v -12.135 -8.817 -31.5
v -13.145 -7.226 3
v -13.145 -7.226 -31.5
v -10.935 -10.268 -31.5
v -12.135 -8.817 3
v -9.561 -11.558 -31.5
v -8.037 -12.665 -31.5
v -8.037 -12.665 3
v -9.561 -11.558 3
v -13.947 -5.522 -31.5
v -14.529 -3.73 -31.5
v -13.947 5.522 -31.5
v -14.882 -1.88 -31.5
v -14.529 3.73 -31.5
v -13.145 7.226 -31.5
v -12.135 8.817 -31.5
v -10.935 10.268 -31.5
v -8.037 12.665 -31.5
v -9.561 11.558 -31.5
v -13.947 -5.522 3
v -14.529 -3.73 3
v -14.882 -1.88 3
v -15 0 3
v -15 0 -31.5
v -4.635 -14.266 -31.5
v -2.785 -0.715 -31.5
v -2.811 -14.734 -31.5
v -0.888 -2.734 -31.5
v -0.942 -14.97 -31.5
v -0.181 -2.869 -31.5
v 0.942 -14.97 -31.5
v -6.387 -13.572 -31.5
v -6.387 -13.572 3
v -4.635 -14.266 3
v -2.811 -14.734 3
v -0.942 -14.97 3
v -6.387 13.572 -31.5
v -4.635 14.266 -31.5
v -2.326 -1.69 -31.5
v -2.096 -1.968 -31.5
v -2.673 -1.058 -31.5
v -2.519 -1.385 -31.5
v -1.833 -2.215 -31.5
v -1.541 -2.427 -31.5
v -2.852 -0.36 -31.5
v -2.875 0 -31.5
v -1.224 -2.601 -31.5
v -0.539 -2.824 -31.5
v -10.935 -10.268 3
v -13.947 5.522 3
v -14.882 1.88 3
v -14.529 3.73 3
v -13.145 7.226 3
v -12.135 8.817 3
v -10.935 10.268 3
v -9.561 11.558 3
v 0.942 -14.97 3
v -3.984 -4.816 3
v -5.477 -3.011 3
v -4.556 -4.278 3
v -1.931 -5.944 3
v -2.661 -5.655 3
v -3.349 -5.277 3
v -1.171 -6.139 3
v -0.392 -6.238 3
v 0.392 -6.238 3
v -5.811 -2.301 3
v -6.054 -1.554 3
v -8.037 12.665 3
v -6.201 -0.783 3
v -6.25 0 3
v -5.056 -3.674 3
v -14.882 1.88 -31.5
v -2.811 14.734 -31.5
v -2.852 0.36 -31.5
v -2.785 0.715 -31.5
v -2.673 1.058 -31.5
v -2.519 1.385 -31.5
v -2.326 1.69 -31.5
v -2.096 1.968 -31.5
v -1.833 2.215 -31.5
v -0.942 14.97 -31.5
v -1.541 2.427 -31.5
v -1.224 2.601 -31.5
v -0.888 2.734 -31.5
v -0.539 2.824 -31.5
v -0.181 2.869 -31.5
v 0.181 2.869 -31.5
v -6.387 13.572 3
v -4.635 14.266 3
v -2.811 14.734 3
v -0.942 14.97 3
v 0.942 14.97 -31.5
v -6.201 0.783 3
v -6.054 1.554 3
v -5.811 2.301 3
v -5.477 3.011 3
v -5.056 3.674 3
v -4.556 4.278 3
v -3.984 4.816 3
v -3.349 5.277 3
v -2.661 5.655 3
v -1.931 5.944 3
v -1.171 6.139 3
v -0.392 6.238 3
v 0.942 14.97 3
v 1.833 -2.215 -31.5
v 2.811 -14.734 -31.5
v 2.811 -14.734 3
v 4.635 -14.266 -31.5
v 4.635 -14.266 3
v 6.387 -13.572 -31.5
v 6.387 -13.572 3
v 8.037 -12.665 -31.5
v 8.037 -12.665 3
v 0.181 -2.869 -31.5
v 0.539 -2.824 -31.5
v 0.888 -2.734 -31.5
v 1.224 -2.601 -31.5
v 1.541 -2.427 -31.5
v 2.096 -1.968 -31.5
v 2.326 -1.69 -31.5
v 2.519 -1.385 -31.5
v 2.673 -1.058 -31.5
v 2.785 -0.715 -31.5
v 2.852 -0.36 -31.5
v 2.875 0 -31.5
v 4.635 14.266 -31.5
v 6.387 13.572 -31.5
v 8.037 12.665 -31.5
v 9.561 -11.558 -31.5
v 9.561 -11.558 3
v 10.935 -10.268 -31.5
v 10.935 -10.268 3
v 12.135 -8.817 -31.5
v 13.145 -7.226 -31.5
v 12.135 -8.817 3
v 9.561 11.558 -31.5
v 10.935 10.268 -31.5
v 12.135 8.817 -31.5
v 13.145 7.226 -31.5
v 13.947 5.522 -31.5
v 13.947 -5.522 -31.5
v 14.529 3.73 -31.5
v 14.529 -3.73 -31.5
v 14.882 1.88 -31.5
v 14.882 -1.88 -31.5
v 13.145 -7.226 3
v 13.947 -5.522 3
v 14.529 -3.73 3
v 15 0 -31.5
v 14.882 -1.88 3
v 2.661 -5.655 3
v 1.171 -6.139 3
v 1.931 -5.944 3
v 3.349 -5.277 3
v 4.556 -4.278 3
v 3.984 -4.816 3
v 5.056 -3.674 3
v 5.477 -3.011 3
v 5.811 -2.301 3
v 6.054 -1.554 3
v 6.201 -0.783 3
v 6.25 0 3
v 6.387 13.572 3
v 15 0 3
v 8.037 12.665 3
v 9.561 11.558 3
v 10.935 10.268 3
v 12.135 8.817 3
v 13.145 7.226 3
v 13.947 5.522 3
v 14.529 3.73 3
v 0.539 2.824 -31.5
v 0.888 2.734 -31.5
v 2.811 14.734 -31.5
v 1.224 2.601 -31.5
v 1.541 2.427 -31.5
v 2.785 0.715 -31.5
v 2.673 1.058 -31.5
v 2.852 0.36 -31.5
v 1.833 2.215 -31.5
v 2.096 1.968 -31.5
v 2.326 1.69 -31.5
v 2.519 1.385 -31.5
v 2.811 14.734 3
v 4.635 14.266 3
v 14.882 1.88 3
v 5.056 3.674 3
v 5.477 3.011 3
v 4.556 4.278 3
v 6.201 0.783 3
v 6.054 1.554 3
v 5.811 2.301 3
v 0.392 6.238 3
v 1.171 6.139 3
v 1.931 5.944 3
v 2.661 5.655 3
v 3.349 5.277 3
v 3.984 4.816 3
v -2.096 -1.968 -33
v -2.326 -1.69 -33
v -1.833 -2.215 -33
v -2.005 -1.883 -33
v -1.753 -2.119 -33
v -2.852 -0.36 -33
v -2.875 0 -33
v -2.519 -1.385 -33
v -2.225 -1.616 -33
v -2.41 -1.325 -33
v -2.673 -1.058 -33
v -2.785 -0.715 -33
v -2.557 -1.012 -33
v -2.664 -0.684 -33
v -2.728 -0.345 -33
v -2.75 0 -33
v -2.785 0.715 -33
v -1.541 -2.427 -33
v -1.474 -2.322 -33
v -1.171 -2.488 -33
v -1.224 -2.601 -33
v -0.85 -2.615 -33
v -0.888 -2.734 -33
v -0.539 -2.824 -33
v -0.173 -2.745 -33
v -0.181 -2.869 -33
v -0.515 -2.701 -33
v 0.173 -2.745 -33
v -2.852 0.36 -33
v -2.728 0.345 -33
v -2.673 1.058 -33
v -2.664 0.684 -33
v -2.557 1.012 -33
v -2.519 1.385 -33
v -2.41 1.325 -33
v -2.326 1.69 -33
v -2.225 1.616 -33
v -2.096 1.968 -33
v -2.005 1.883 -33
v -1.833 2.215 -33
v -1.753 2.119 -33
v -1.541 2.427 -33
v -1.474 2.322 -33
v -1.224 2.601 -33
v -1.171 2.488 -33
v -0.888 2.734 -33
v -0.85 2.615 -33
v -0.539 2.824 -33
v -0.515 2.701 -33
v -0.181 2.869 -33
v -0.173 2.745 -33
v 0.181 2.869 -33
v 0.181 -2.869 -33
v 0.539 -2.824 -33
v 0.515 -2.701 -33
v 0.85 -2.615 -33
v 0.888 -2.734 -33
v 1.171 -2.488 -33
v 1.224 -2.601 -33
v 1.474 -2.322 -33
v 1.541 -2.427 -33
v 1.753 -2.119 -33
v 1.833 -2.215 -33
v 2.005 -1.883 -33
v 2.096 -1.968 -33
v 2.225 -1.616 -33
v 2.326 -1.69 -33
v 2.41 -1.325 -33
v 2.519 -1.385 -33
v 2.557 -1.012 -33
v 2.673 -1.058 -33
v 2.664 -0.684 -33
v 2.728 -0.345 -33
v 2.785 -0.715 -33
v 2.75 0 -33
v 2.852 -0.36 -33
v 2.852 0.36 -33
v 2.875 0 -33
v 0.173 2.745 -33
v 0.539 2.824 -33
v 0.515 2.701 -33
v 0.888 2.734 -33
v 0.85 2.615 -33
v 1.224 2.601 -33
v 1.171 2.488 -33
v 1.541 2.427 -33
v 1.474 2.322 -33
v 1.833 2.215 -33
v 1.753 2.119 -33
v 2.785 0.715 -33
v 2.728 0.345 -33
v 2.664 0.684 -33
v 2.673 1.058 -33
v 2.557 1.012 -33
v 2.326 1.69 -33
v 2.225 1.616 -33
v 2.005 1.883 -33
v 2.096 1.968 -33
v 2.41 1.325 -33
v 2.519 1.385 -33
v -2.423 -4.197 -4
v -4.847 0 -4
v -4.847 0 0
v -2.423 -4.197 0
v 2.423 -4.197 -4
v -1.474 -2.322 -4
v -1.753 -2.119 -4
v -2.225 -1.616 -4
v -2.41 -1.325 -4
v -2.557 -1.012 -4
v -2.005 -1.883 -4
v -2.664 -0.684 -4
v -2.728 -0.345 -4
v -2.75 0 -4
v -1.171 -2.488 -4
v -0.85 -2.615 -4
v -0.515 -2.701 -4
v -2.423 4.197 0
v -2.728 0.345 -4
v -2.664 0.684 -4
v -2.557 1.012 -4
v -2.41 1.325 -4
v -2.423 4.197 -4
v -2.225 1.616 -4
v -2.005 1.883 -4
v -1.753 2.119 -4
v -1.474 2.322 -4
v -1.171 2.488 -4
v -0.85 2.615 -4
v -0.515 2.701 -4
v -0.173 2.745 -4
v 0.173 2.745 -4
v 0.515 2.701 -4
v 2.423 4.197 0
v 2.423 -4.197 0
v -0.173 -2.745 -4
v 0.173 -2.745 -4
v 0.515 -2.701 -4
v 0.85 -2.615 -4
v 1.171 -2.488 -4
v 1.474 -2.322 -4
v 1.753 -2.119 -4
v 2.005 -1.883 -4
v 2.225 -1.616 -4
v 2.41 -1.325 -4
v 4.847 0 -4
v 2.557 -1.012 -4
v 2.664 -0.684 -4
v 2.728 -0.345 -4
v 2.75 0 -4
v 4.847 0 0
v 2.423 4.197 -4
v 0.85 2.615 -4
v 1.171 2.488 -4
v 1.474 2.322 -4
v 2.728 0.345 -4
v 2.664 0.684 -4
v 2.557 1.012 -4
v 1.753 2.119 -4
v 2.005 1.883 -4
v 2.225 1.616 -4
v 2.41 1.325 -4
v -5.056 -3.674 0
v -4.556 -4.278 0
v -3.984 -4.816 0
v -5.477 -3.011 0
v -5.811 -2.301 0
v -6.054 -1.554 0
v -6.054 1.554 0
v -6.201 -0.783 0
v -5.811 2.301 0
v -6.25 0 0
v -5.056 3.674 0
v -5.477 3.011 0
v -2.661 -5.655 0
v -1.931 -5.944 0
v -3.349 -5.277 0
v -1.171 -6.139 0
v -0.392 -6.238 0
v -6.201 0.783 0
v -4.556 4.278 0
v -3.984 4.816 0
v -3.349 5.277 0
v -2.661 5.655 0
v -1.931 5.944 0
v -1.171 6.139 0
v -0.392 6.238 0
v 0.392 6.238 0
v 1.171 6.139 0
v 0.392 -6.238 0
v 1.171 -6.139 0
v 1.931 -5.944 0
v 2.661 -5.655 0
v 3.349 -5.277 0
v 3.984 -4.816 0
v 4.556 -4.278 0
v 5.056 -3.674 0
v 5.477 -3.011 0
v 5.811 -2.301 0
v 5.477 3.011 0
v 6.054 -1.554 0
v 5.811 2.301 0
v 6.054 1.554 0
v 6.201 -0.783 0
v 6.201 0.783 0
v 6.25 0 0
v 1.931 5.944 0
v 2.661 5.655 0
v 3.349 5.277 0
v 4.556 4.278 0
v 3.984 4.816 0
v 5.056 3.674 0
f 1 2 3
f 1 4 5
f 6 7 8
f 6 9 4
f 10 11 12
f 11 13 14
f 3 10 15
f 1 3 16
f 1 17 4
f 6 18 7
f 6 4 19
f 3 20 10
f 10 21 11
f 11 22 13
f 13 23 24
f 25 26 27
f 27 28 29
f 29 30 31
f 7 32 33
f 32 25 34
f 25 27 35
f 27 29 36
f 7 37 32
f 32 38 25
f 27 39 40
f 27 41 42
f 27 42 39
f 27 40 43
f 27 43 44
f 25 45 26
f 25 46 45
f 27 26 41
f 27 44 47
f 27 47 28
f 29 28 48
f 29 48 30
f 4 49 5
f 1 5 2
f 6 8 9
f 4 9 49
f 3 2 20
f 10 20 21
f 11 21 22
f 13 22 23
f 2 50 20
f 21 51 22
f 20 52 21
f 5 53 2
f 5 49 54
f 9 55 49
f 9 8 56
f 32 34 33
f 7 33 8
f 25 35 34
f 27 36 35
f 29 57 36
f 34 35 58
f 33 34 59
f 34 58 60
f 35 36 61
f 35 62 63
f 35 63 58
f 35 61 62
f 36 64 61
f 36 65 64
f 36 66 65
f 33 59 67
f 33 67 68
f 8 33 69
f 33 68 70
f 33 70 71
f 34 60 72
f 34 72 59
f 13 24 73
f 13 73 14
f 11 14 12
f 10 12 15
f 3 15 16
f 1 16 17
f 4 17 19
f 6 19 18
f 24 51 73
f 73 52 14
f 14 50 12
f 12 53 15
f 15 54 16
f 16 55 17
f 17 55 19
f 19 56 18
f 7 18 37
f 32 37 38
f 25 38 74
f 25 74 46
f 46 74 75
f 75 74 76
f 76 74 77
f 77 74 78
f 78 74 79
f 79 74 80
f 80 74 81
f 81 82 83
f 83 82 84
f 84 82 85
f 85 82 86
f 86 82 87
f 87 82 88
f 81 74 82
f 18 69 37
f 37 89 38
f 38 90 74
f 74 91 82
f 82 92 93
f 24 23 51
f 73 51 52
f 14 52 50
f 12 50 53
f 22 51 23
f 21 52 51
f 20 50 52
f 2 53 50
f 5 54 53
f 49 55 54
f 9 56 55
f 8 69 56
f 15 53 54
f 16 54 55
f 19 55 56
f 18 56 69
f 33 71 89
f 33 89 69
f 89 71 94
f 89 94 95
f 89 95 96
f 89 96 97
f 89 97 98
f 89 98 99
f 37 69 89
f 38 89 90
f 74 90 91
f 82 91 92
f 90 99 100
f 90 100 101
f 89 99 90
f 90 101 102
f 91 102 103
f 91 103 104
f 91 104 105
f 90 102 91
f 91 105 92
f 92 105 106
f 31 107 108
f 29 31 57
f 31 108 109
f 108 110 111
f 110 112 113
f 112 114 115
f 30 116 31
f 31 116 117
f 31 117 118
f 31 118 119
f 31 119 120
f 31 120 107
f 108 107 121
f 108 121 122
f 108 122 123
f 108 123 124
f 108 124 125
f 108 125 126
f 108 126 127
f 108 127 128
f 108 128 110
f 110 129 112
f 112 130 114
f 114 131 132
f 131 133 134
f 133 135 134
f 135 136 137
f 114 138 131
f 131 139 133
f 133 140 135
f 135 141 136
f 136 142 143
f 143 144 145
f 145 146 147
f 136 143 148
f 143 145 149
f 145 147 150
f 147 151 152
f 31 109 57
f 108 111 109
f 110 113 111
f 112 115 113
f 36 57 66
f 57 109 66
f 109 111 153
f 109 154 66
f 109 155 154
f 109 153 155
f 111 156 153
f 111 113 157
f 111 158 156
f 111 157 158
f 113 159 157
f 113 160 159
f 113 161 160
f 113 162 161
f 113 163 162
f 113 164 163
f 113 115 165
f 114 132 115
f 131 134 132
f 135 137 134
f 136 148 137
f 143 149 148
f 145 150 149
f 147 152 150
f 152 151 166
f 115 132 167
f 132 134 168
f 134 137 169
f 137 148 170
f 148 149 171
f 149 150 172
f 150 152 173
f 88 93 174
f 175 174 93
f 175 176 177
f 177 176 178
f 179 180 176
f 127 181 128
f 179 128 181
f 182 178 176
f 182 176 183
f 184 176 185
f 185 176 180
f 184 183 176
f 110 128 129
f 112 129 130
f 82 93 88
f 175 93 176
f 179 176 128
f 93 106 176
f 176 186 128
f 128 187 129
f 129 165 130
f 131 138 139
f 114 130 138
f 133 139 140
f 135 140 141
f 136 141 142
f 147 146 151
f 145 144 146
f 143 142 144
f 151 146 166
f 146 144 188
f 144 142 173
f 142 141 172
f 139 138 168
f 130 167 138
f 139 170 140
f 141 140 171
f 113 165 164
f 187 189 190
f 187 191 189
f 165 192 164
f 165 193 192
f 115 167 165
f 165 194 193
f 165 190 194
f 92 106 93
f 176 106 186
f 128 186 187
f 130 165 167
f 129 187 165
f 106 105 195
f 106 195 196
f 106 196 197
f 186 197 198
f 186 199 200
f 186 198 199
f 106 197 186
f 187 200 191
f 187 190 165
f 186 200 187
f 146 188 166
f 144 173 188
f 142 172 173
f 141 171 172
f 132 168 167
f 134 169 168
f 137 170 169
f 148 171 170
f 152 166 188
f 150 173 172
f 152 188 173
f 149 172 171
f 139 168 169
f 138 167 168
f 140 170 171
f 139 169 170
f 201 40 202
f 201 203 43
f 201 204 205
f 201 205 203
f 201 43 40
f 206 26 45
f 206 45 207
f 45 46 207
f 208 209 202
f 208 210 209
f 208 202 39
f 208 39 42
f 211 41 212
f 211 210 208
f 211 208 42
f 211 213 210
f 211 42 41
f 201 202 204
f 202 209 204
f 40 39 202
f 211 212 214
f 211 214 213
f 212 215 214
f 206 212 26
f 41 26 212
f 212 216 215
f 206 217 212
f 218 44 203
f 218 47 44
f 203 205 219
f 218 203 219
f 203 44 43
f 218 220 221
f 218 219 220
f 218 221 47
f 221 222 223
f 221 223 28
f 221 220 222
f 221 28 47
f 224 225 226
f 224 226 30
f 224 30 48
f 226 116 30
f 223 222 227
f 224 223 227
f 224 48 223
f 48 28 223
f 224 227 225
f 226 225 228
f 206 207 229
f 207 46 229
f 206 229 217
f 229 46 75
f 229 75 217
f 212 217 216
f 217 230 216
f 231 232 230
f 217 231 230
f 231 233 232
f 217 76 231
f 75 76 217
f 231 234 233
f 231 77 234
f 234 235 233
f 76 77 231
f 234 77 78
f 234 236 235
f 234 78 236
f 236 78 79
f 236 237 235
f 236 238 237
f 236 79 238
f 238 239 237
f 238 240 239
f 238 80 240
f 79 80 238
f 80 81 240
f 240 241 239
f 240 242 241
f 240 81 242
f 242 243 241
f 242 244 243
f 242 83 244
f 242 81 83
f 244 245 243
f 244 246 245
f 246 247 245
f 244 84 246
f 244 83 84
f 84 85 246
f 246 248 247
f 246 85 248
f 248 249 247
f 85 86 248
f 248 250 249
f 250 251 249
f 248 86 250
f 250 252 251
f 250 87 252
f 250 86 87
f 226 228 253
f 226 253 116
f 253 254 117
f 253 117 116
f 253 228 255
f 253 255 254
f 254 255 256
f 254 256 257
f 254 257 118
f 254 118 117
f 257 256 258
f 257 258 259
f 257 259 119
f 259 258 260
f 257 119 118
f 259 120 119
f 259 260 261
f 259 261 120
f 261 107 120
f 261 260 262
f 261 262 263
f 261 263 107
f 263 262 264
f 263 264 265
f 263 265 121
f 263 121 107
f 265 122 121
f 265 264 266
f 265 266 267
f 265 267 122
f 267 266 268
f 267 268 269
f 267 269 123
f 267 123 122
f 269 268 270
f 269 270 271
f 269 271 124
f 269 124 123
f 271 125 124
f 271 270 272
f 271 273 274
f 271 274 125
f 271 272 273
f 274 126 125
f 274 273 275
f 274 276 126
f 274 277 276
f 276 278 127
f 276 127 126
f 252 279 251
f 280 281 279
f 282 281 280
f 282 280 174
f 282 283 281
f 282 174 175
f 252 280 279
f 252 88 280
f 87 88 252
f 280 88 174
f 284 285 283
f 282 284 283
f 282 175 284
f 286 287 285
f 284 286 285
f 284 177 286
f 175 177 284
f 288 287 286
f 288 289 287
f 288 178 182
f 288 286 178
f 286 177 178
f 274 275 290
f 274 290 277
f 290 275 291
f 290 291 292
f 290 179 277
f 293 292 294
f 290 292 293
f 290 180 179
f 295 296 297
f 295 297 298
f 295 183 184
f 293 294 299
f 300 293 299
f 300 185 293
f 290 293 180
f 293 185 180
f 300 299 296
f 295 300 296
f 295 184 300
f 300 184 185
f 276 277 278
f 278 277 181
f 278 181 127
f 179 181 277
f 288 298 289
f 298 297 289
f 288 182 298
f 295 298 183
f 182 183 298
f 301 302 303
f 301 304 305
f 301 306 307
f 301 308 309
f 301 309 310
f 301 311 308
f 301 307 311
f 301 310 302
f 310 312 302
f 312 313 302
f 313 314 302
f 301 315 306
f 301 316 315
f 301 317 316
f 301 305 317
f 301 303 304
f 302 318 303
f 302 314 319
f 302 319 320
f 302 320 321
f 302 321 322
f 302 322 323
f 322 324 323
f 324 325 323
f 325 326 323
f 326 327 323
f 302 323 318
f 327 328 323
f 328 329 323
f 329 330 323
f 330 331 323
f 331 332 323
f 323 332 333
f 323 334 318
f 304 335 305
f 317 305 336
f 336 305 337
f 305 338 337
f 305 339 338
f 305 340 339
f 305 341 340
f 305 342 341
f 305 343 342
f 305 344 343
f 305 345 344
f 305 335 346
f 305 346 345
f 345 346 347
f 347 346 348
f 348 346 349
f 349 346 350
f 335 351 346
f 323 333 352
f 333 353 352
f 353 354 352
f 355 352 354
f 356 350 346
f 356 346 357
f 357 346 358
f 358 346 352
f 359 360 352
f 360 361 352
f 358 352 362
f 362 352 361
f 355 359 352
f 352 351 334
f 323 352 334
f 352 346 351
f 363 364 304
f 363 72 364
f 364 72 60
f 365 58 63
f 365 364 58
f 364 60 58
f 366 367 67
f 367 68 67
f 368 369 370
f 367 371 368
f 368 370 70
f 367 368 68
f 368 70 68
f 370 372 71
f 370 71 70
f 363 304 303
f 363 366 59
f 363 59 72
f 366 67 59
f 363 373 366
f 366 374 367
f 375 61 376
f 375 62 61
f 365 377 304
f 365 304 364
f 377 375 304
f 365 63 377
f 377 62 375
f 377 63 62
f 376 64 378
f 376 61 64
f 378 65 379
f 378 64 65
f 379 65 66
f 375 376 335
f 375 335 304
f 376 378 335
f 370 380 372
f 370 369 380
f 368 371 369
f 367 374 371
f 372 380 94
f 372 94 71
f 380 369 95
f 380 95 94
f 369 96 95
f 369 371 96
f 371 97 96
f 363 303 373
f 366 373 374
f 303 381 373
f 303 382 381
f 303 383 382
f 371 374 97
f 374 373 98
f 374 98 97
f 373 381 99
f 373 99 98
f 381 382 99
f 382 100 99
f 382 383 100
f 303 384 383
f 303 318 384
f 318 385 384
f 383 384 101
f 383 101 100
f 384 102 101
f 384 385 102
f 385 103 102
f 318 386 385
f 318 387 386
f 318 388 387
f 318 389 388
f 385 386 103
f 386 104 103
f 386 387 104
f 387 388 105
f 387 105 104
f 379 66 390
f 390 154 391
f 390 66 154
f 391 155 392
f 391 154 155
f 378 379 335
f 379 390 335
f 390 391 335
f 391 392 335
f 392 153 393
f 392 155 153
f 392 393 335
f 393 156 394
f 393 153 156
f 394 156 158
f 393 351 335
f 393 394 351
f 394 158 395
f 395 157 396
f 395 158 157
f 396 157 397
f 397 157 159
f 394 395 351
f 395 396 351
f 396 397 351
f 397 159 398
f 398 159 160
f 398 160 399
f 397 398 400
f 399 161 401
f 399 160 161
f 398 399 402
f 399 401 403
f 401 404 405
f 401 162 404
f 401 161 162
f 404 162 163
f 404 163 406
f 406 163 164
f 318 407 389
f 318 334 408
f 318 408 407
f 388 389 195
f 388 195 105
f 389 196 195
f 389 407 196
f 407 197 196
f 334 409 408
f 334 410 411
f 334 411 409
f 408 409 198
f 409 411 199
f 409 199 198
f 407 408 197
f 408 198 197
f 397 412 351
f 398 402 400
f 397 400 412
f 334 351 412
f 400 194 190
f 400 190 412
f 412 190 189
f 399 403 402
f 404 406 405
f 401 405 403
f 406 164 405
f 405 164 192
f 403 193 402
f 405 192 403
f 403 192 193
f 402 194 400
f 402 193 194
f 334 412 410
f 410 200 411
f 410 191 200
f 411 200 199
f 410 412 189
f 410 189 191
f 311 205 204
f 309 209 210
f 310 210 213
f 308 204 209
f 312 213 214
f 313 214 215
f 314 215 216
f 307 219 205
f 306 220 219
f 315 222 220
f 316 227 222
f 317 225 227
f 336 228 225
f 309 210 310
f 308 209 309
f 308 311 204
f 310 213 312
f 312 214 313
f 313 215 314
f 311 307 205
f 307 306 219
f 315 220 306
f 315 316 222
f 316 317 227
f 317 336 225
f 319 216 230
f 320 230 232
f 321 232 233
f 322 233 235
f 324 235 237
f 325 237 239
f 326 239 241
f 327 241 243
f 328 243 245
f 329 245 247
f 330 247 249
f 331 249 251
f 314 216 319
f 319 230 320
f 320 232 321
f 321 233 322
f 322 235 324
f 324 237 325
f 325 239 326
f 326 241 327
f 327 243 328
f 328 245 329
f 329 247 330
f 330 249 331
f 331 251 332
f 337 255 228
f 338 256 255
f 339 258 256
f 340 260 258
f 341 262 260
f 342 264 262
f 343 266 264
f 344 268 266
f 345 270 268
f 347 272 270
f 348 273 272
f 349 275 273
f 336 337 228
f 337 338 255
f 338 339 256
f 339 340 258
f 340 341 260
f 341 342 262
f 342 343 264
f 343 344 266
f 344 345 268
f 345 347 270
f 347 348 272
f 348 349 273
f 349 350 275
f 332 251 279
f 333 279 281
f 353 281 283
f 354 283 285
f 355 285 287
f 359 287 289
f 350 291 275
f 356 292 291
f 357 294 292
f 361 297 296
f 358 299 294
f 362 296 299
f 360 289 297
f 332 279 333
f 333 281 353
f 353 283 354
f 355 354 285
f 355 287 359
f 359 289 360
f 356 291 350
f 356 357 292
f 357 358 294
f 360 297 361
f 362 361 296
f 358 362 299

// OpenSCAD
$fn = 50;


difference() {
	union() {
		translate(v = [0, 0, -31.5000000000]) {
			cylinder(h = 34.5000000000, r = 15.0000000000);
		}
		#translate(v = [0, 0, -33.0000000000]) {
			cylinder(h = 33, r = 2.8750000000);
		}
	}
	union() {
		translate(v = [0, 0, 0]) {
			rotate(a = [0, 0, 0]) {
				difference() {
					union() {
						translate(v = [0, 0, -4]) {
							linear_extrude(height = 4) {
								polygon(points = [[4.8468000000, 0.0000000000], [2.4234000000, 4.1974519271], [-2.4234000000, 4.1974519271], [-4.8468000000, 0.0000000000], [-2.4234000000, -4.1974519271], [2.4234000000, -4.1974519271]]);
							}
						}
					}
					union();
				}
			}
		}
		#cylinder(h = 3, r = 6.2500000000);
		#translate(v = [0, 0, -100.0000000000]) {
			cylinder(h = 200, r = 2.7500000000);
		}
	}
}
